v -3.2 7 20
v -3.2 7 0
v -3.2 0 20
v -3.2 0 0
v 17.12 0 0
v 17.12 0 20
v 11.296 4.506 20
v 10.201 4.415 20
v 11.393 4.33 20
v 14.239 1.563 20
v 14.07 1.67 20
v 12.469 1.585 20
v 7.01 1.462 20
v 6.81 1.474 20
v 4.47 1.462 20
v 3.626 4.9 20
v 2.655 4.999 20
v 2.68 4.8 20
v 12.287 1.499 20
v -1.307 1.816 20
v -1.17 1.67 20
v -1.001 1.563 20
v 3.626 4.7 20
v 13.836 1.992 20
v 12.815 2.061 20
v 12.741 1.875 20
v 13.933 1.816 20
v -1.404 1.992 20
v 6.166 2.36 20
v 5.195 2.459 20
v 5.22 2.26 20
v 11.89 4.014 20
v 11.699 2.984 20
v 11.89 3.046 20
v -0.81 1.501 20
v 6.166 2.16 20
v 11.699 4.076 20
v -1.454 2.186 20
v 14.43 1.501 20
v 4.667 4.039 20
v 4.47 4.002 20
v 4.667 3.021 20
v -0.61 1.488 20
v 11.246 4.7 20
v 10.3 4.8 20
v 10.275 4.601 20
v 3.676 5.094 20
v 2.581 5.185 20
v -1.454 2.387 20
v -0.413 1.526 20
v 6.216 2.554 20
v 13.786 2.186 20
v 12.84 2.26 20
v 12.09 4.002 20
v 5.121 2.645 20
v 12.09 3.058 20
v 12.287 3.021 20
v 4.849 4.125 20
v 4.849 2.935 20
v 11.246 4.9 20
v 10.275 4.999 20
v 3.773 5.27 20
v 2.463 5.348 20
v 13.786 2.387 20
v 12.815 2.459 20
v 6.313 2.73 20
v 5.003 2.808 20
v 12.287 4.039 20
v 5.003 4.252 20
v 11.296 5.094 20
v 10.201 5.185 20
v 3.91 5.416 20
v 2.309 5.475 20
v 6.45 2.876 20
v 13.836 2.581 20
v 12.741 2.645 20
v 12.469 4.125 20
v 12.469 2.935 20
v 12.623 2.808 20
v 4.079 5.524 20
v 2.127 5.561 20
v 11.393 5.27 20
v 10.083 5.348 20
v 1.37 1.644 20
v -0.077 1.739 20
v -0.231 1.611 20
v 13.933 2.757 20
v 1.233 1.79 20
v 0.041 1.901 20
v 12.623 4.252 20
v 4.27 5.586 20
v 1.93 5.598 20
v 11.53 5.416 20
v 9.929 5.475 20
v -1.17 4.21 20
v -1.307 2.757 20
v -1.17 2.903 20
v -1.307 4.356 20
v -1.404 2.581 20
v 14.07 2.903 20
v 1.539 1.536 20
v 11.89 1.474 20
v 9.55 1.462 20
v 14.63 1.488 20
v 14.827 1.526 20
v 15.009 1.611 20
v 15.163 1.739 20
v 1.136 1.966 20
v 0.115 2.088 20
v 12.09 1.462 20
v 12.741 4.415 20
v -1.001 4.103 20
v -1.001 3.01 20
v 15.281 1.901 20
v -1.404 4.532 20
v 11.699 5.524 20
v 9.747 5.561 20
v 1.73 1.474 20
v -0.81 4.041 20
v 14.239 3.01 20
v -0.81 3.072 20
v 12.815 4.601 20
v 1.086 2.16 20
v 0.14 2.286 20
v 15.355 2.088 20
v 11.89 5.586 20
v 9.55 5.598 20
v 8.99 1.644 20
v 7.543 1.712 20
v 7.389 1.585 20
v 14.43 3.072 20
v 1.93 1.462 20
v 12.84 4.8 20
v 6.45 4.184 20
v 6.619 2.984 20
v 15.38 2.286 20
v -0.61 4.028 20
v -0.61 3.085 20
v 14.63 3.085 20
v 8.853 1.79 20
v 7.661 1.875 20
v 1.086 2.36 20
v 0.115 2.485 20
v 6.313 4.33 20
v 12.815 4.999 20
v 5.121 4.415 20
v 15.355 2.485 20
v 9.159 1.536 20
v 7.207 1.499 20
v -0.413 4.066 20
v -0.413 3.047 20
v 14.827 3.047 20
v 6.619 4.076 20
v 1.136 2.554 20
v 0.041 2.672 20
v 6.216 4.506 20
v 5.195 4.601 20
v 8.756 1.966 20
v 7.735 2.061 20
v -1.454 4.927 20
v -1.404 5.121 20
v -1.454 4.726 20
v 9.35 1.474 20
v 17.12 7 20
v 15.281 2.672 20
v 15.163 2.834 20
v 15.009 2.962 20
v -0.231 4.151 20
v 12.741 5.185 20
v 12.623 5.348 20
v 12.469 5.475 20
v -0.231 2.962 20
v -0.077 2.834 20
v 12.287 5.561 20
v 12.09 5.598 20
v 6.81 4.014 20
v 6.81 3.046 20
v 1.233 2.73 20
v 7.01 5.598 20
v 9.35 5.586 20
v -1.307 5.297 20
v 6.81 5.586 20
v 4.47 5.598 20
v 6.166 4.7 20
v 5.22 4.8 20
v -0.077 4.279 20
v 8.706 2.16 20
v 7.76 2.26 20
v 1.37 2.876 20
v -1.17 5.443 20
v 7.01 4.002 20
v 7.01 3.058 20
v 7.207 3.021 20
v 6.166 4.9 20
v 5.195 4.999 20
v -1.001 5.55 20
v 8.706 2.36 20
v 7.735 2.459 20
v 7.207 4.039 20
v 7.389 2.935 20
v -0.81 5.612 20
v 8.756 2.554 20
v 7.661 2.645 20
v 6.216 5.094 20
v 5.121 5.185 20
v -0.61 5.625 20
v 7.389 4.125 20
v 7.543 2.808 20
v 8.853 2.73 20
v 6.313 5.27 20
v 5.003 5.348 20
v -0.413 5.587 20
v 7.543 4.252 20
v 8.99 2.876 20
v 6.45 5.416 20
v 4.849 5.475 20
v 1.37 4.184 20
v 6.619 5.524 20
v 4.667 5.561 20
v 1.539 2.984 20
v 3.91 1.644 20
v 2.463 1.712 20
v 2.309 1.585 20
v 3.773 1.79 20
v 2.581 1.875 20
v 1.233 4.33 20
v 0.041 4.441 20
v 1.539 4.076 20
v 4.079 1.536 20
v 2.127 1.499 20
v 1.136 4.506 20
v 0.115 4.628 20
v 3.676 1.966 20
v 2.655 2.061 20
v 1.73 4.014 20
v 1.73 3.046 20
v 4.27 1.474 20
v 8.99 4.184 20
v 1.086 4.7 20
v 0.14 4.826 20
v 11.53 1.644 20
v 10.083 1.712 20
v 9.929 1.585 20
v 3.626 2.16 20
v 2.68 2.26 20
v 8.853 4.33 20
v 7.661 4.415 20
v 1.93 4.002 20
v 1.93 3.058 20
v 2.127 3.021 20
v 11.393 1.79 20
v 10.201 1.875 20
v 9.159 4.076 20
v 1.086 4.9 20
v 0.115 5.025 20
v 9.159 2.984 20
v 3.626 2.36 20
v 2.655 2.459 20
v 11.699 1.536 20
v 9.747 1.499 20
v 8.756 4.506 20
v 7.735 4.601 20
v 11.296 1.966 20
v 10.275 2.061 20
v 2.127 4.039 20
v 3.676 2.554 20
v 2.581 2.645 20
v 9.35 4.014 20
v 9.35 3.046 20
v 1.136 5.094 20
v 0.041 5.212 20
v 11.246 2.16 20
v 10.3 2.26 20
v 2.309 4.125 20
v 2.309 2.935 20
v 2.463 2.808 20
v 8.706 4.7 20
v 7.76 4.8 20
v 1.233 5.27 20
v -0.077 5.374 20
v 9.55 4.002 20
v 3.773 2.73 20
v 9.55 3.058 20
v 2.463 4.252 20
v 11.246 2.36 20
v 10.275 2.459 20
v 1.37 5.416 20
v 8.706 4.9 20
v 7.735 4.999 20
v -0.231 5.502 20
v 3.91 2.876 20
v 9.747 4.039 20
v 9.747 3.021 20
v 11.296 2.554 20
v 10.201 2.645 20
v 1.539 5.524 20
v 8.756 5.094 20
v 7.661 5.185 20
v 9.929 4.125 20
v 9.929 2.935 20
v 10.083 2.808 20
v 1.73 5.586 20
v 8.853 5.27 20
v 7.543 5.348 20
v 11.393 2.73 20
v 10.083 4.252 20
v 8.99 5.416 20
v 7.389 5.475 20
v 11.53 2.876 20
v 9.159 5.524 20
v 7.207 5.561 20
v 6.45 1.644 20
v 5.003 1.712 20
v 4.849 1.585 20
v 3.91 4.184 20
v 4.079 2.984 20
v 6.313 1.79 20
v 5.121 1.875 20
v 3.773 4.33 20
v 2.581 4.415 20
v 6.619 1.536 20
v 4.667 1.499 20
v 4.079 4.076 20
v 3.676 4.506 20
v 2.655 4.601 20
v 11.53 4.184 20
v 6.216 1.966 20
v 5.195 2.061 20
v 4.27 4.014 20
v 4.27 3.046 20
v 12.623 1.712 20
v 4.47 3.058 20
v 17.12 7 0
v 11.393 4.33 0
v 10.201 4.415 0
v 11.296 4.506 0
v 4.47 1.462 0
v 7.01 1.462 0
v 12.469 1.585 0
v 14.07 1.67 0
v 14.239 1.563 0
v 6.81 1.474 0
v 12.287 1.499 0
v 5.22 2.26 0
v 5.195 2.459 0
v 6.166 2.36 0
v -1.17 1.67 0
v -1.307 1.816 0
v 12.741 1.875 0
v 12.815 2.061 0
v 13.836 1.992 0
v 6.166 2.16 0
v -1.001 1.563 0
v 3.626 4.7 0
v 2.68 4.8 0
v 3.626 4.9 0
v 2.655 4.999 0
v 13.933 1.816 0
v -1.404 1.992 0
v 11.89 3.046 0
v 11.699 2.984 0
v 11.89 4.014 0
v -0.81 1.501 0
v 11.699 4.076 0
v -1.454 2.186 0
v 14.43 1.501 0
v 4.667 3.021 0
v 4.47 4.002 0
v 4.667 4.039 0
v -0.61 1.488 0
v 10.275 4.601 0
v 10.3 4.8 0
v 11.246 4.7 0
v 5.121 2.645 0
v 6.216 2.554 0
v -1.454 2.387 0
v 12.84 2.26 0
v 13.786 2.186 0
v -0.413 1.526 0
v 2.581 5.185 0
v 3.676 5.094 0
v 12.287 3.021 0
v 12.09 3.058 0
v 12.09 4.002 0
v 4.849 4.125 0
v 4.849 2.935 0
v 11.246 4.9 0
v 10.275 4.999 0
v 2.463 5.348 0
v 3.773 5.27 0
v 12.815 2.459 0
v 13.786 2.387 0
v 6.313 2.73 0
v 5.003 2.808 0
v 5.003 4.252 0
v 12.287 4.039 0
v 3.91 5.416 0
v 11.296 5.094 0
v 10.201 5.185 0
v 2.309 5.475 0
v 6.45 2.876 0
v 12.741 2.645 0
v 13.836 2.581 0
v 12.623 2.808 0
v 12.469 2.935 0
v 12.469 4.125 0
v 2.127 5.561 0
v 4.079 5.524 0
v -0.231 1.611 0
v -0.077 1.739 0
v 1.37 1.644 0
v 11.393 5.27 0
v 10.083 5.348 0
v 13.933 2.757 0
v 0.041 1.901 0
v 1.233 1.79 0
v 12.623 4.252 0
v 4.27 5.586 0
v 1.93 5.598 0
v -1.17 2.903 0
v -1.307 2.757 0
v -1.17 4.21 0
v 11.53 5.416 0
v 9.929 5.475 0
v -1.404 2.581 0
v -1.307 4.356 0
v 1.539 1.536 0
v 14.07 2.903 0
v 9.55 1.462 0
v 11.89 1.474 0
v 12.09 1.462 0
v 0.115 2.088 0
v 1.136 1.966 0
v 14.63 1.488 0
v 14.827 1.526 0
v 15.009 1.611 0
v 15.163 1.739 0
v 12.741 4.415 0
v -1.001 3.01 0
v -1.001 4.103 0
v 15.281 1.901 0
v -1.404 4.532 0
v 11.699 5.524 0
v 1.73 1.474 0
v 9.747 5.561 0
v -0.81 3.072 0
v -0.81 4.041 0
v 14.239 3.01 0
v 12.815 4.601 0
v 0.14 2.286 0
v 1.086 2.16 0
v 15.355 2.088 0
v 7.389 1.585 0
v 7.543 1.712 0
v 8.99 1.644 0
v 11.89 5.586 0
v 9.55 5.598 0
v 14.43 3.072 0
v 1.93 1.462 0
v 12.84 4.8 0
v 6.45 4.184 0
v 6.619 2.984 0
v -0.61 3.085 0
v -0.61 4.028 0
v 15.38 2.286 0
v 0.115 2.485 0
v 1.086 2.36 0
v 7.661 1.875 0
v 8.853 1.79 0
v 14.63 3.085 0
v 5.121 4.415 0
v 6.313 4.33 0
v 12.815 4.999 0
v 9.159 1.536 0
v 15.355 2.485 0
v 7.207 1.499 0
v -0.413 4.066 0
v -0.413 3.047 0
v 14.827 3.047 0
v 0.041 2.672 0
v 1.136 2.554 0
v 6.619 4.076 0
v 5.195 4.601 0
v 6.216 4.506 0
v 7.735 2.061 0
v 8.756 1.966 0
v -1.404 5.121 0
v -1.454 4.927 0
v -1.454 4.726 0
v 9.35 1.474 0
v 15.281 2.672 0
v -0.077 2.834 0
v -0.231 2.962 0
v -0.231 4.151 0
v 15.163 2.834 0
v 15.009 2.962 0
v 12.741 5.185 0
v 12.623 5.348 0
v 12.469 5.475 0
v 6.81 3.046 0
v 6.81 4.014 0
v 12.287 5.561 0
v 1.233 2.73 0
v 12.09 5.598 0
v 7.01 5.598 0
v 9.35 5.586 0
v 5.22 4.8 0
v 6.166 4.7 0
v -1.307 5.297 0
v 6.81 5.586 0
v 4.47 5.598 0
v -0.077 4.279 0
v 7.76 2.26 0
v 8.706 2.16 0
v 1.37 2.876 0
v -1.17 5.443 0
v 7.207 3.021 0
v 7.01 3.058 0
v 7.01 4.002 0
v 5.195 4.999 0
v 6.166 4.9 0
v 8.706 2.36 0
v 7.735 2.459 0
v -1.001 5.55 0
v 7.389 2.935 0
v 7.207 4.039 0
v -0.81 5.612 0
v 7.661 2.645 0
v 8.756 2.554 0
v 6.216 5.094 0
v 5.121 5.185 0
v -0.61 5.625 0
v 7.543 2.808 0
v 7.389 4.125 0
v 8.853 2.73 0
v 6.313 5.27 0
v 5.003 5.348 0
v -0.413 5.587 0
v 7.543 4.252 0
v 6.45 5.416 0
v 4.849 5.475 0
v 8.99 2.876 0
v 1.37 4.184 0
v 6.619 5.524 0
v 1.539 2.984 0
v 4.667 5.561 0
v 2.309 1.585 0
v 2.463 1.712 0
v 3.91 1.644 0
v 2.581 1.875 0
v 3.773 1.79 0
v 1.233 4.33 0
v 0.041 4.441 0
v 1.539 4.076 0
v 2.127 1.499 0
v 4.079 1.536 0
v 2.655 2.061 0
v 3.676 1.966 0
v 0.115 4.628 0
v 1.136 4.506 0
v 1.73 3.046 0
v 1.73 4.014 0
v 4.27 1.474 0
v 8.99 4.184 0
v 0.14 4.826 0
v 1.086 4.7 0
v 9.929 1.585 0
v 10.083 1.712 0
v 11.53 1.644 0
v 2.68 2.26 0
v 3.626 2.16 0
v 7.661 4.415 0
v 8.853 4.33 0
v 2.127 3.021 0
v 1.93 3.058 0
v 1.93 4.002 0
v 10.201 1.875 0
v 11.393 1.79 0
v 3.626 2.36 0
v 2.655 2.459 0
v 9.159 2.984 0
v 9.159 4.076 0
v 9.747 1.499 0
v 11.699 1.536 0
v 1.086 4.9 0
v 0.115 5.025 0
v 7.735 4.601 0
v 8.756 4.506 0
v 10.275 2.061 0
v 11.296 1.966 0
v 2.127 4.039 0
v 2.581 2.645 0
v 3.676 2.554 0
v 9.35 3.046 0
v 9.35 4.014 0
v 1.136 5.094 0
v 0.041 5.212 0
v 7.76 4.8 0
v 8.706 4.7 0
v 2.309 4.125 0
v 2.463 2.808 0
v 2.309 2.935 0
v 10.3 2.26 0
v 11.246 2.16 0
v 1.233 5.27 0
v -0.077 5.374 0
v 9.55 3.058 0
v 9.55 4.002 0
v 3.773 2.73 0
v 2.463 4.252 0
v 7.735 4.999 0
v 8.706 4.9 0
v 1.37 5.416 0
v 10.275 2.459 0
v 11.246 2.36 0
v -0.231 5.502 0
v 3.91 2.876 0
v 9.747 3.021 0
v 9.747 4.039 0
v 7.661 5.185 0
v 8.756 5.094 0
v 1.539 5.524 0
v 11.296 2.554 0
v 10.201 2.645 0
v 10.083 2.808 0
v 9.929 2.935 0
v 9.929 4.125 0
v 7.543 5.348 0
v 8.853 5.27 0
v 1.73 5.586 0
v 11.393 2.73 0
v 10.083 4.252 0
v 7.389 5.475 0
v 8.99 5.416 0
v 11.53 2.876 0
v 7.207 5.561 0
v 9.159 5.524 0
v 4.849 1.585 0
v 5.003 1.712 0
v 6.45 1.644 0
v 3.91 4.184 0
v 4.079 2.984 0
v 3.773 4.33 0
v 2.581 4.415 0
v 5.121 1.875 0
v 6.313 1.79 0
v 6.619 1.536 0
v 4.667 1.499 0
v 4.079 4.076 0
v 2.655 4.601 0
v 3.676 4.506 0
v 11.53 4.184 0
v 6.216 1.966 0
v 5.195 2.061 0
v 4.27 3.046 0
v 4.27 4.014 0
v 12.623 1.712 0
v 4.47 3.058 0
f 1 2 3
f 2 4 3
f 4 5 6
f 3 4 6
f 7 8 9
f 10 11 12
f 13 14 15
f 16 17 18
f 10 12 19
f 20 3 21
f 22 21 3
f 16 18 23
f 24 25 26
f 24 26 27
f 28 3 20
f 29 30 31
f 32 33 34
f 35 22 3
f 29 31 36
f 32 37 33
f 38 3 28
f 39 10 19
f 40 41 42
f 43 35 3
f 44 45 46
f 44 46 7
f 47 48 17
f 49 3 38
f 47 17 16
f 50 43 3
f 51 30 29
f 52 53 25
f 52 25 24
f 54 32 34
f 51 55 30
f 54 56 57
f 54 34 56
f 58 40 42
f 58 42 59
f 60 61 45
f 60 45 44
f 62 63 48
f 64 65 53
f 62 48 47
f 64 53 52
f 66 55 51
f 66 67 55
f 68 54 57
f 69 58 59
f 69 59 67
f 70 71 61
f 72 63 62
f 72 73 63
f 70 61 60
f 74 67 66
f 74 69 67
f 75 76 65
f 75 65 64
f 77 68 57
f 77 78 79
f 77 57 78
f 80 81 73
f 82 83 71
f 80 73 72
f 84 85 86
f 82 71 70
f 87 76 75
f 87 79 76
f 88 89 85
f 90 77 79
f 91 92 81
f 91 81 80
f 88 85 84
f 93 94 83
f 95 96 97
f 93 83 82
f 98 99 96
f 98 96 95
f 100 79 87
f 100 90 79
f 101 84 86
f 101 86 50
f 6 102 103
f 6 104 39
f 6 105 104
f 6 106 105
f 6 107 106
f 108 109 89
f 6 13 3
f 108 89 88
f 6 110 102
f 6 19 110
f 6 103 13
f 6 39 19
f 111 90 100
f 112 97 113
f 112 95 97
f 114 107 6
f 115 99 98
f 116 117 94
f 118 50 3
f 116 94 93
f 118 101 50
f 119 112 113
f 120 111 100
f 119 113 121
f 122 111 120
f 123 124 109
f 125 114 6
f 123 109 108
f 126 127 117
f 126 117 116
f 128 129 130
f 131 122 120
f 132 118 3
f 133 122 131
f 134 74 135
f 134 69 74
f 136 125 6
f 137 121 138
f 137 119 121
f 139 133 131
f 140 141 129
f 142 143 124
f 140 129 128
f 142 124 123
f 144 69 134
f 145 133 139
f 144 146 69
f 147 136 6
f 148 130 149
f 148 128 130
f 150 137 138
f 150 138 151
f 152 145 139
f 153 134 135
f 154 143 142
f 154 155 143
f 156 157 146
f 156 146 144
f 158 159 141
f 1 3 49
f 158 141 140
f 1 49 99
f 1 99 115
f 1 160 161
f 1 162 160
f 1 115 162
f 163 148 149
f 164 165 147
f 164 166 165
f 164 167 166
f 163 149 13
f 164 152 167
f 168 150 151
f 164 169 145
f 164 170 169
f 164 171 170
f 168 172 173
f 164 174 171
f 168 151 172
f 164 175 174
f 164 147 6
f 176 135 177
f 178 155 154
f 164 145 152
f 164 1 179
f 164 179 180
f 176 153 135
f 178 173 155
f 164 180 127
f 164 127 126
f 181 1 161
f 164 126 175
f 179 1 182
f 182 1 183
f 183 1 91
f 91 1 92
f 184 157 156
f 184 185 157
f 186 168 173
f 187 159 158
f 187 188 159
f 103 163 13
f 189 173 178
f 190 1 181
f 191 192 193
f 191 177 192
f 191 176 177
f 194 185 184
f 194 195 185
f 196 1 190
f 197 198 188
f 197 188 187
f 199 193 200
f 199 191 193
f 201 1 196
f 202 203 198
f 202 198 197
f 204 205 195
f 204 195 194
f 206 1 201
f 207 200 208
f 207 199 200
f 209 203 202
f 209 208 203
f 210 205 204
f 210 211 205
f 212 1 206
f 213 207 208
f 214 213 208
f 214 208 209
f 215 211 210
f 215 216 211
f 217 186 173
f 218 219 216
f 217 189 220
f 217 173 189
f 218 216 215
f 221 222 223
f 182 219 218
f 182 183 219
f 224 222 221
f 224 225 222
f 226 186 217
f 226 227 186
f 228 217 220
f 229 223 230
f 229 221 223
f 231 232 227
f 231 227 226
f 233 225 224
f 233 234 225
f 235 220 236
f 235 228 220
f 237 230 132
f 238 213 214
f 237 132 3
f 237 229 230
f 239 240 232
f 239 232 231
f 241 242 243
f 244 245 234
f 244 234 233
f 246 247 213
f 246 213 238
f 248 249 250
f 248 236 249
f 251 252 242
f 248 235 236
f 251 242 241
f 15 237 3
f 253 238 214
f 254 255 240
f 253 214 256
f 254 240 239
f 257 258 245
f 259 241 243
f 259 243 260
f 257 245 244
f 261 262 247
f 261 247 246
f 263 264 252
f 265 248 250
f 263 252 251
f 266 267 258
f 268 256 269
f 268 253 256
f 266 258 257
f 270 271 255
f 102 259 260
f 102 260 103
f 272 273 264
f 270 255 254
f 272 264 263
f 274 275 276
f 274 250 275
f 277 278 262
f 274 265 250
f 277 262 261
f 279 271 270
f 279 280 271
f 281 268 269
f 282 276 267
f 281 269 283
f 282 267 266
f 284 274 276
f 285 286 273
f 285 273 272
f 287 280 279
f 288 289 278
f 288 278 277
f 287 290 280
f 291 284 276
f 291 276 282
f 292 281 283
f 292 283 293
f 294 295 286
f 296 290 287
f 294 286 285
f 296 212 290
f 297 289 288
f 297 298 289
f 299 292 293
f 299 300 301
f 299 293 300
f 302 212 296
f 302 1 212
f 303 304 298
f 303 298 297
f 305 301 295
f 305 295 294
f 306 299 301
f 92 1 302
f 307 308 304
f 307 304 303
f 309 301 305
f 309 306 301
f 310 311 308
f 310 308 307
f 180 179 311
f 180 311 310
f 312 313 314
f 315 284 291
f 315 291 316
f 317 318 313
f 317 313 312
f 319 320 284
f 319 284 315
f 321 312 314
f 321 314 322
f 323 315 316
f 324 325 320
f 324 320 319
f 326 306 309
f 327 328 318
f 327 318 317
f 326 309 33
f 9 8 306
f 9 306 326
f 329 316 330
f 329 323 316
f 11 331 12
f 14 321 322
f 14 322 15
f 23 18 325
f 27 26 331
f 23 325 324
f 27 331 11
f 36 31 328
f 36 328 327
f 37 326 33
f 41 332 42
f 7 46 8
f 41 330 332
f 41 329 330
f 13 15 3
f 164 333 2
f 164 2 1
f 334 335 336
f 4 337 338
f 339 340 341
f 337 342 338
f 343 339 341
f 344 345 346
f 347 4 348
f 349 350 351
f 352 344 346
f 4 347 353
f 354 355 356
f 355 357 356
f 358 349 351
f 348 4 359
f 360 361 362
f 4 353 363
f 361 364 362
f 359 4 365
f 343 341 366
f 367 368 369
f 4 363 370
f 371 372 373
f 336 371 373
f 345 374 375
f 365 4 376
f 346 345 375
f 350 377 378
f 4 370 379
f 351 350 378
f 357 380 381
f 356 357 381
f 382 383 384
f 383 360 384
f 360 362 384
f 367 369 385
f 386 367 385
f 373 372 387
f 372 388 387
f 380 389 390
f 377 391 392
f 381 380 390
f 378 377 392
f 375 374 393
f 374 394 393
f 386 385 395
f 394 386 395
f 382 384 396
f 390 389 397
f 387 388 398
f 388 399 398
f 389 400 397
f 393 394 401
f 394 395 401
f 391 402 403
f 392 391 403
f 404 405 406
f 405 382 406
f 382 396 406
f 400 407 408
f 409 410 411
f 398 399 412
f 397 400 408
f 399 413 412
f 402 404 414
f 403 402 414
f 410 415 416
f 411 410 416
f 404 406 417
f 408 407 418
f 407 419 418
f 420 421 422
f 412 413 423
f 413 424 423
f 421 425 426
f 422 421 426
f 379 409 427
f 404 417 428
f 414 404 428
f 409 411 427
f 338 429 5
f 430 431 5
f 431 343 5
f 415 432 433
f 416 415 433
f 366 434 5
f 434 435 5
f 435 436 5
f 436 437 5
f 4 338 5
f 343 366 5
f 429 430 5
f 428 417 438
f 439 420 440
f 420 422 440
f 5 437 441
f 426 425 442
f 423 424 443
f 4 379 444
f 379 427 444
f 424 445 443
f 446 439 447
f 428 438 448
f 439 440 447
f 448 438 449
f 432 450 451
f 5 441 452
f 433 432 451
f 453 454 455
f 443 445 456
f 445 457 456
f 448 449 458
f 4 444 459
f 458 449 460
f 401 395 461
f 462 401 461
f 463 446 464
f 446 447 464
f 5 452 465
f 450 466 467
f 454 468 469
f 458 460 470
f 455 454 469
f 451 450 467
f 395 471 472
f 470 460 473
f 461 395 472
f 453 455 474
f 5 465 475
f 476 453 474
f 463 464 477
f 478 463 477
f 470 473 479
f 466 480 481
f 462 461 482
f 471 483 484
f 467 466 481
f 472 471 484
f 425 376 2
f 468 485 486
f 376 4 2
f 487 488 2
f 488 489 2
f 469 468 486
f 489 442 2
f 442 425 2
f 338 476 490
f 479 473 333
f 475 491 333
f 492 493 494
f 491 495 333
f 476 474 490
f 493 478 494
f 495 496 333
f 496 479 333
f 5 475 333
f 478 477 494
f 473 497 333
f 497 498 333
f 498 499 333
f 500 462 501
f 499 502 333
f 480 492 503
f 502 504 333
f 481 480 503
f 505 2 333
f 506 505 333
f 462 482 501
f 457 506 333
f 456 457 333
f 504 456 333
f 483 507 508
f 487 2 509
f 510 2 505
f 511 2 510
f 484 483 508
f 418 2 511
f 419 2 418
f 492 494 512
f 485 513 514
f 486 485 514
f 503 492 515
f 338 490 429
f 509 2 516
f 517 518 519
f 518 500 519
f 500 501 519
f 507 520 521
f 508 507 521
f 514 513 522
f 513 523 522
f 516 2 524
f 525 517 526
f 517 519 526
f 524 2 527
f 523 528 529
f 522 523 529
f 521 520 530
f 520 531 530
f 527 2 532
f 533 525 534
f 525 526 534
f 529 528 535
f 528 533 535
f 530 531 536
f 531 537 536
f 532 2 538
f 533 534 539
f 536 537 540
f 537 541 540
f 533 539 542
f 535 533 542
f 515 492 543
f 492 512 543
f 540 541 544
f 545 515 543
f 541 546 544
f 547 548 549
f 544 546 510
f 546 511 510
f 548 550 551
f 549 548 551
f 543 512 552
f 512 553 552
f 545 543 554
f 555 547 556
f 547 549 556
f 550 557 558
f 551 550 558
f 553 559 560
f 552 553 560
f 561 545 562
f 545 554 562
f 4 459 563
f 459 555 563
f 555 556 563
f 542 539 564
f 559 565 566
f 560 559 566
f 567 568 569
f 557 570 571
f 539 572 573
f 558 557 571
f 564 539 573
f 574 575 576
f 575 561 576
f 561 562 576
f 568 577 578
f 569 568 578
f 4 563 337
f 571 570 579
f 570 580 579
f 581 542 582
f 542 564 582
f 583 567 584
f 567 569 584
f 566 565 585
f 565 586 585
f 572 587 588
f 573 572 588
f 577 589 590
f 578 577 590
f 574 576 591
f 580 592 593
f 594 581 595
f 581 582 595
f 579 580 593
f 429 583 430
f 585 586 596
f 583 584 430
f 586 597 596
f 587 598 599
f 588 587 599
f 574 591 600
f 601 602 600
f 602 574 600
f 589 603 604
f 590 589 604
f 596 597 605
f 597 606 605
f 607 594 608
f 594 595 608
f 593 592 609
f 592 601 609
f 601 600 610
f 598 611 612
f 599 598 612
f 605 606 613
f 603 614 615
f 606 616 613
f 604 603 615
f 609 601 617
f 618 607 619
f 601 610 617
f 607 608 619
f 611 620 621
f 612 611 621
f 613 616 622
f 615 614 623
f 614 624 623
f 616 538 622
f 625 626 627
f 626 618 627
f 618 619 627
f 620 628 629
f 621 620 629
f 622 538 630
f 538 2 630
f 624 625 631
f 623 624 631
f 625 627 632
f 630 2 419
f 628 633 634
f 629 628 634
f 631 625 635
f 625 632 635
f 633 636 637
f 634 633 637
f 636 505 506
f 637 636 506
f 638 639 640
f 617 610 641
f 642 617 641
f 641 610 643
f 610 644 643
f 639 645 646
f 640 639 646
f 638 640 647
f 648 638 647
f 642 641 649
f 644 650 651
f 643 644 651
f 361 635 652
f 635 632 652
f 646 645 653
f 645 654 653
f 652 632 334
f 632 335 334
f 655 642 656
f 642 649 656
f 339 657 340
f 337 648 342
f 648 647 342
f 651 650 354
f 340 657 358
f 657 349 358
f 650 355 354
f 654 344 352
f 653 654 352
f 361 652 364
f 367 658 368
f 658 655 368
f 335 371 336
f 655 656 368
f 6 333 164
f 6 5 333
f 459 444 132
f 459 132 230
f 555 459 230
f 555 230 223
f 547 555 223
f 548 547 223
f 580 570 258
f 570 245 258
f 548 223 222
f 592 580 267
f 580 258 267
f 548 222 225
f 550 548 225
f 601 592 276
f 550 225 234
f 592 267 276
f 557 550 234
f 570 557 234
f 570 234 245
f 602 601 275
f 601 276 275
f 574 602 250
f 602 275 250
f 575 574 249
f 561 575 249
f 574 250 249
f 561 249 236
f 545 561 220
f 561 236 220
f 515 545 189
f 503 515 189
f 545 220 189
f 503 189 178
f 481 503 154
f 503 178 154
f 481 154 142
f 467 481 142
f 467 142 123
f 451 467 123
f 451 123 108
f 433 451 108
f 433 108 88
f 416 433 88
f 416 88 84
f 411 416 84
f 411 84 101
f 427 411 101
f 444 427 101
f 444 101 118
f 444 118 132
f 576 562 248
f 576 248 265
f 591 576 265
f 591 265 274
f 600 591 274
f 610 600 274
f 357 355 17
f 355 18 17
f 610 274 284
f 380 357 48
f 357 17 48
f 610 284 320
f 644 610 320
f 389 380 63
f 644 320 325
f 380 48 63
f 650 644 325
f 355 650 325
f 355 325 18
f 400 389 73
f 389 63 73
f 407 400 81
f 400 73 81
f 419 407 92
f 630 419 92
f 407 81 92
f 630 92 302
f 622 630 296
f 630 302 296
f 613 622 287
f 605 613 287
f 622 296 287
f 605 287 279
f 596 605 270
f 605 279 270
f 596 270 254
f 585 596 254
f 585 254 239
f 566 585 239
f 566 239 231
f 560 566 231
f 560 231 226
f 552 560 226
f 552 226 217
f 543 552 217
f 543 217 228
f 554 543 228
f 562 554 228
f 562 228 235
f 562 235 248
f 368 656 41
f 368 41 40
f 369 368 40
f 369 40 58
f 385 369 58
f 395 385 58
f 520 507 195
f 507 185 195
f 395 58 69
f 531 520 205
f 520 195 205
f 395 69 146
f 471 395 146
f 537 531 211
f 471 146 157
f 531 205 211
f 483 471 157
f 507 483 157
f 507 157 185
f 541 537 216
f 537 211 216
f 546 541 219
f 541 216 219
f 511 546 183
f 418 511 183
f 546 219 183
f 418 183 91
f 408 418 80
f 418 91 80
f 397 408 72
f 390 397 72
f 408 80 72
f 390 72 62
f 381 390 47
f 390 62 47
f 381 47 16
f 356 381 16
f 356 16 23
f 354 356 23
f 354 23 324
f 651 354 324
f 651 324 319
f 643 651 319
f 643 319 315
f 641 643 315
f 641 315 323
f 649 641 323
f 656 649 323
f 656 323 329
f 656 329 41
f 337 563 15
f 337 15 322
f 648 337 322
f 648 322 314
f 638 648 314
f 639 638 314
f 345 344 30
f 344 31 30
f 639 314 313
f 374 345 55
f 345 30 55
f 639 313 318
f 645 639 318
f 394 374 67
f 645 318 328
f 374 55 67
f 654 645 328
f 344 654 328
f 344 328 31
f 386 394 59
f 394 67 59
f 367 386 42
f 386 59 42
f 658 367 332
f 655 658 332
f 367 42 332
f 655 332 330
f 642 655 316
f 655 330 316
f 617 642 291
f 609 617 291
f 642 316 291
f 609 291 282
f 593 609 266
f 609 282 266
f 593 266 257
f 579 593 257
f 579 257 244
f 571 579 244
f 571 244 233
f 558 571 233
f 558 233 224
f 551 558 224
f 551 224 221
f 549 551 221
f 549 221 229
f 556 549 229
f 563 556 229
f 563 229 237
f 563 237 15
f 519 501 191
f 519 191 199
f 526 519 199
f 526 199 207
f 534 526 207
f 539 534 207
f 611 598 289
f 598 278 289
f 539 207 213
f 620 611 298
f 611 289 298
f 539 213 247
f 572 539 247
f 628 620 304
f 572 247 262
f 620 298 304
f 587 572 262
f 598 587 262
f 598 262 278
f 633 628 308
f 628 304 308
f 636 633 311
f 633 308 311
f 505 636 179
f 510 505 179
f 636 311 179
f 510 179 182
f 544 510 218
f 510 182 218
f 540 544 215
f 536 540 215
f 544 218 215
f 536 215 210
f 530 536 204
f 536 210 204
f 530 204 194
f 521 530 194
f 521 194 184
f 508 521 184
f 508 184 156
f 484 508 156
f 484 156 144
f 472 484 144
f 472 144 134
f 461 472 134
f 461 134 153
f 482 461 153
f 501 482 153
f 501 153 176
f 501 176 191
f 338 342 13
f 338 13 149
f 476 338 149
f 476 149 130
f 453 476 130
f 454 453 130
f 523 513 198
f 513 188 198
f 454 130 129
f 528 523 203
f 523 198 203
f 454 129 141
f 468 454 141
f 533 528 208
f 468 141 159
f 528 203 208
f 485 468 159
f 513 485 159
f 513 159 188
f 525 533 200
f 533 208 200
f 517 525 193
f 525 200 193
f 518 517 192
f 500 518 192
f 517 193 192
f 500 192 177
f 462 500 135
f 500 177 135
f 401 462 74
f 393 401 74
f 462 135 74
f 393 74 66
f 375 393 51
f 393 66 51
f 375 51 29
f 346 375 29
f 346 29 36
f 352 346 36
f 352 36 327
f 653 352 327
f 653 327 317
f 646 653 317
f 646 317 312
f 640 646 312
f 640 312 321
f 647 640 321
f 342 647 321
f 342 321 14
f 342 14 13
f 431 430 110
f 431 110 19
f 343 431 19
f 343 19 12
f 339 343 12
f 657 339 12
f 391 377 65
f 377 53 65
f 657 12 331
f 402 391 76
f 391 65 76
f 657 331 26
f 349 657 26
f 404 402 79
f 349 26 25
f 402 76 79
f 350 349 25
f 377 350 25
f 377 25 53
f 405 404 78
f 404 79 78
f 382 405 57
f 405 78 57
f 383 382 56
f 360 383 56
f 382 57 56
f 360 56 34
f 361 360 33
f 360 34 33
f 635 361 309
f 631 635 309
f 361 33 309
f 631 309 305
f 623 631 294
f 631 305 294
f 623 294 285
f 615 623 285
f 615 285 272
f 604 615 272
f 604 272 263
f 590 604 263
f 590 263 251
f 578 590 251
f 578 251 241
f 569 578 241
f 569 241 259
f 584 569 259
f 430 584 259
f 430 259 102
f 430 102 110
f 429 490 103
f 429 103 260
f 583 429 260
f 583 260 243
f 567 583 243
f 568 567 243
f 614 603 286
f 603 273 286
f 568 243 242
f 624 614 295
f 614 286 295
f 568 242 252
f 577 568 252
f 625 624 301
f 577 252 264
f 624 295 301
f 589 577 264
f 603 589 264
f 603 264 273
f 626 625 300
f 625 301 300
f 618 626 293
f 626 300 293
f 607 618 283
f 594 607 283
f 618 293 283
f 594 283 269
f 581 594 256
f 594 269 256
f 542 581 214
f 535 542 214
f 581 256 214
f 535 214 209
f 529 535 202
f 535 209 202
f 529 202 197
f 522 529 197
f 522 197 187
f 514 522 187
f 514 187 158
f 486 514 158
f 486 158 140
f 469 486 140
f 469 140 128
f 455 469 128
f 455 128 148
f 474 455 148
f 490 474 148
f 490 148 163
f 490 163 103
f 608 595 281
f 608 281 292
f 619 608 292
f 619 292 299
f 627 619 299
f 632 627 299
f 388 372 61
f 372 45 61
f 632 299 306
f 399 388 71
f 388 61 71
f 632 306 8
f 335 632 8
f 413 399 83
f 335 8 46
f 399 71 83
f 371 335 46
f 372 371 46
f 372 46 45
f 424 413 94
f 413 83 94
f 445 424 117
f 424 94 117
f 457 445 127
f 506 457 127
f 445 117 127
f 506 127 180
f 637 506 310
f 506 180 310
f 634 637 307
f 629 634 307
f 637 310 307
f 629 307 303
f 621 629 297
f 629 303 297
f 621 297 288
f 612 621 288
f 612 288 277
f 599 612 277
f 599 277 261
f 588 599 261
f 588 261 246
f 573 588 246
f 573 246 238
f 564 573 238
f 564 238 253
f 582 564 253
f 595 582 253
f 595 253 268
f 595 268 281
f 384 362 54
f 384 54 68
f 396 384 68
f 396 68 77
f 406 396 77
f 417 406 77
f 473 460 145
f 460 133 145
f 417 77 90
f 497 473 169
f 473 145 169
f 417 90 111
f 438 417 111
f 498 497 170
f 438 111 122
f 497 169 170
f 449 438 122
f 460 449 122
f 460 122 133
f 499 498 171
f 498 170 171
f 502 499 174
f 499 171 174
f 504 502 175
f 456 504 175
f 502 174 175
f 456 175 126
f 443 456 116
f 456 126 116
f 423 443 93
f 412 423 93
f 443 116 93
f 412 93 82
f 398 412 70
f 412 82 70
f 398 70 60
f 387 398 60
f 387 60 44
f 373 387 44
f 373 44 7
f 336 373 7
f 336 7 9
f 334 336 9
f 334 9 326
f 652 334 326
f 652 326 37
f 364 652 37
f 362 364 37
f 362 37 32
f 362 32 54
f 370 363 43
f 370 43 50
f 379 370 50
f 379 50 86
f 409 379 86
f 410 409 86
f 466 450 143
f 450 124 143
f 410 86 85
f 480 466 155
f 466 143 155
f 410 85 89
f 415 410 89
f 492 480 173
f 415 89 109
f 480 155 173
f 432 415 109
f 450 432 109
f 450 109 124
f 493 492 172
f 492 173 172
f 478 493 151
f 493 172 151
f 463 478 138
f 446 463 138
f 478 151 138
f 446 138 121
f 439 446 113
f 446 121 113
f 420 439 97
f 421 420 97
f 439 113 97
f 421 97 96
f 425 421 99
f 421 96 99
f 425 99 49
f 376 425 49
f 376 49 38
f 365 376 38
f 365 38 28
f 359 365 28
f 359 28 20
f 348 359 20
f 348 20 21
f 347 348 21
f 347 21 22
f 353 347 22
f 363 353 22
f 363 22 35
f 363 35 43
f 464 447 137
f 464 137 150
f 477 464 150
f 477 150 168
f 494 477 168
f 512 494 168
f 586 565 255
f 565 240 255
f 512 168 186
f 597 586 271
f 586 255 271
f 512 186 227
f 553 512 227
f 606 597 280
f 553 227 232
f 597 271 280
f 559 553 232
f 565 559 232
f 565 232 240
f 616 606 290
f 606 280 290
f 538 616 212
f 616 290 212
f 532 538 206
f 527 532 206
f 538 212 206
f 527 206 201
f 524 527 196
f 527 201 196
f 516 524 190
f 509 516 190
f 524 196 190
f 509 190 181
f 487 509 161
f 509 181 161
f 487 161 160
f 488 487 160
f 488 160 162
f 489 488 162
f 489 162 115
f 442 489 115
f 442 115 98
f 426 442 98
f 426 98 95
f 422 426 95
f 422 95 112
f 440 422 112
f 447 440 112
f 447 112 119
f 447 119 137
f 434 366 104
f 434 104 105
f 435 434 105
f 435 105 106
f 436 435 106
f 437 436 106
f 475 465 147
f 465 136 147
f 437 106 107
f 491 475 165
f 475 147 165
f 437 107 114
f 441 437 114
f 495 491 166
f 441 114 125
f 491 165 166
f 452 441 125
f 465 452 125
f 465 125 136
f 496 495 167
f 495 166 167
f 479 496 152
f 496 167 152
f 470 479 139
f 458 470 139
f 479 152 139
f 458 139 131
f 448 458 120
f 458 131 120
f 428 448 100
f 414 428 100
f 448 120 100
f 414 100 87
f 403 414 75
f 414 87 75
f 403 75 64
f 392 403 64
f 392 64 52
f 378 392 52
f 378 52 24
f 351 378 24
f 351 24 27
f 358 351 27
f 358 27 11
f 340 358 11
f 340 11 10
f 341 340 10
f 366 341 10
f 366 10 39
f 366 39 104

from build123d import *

# Parameters (mm, degrees)
BOX_W        = 20.32
BOX_H        = 7
BOX_DEPTH    = 20
SKETCH_R     = 0.8
POCKET_DEPTH = 20


with BuildPart() as part:
    # Box → Box (new body)
    with BuildSketch(Plane(origin=(-3.2, 0, 0), x_dir=(1, 0, 0), z_dir=(0, 0, 1))):
        with Locations((10.16, 3.5)):
            Rectangle(BOX_W, BOX_H)
    extrude(amount=BOX_DEPTH)

    # Sketch → Pocket (cut)
    with BuildSketch(Plane(origin=(-3.2, 0, 20), x_dir=(1, 0, 0), z_dir=(0, 0, 1))):
        with Locations((5.08, 2.26)):
            Circle(SKETCH_R)
        with Locations((7.62, 2.26)):
            Circle(SKETCH_R)
        with Locations((10.16, 2.26)):
            Circle(SKETCH_R)
        with Locations((12.7, 2.26)):
            Circle(SKETCH_R)
        with Locations((15.24, 2.26)):
            Circle(SKETCH_R)
        with Locations((5.08, 4.8)):
            Circle(SKETCH_R)
        with Locations((7.62, 4.8)):
            Circle(SKETCH_R)
        with Locations((10.16, 4.8)):
            Circle(SKETCH_R)
        with Locations((12.7, 4.8)):
            Circle(SKETCH_R)
        with Locations((15.24, 4.8)):
            Circle(SKETCH_R)
        with Locations((2.54, 2.286478)):
            Circle(SKETCH_R)
        with Locations((2.54, 4.826478)):
            Circle(SKETCH_R)
        with Locations((17.78, 2.286478)):
            Circle(SKETCH_R)
    extrude(amount=-POCKET_DEPTH, mode=Mode.SUBTRACT)


solid = part.part
